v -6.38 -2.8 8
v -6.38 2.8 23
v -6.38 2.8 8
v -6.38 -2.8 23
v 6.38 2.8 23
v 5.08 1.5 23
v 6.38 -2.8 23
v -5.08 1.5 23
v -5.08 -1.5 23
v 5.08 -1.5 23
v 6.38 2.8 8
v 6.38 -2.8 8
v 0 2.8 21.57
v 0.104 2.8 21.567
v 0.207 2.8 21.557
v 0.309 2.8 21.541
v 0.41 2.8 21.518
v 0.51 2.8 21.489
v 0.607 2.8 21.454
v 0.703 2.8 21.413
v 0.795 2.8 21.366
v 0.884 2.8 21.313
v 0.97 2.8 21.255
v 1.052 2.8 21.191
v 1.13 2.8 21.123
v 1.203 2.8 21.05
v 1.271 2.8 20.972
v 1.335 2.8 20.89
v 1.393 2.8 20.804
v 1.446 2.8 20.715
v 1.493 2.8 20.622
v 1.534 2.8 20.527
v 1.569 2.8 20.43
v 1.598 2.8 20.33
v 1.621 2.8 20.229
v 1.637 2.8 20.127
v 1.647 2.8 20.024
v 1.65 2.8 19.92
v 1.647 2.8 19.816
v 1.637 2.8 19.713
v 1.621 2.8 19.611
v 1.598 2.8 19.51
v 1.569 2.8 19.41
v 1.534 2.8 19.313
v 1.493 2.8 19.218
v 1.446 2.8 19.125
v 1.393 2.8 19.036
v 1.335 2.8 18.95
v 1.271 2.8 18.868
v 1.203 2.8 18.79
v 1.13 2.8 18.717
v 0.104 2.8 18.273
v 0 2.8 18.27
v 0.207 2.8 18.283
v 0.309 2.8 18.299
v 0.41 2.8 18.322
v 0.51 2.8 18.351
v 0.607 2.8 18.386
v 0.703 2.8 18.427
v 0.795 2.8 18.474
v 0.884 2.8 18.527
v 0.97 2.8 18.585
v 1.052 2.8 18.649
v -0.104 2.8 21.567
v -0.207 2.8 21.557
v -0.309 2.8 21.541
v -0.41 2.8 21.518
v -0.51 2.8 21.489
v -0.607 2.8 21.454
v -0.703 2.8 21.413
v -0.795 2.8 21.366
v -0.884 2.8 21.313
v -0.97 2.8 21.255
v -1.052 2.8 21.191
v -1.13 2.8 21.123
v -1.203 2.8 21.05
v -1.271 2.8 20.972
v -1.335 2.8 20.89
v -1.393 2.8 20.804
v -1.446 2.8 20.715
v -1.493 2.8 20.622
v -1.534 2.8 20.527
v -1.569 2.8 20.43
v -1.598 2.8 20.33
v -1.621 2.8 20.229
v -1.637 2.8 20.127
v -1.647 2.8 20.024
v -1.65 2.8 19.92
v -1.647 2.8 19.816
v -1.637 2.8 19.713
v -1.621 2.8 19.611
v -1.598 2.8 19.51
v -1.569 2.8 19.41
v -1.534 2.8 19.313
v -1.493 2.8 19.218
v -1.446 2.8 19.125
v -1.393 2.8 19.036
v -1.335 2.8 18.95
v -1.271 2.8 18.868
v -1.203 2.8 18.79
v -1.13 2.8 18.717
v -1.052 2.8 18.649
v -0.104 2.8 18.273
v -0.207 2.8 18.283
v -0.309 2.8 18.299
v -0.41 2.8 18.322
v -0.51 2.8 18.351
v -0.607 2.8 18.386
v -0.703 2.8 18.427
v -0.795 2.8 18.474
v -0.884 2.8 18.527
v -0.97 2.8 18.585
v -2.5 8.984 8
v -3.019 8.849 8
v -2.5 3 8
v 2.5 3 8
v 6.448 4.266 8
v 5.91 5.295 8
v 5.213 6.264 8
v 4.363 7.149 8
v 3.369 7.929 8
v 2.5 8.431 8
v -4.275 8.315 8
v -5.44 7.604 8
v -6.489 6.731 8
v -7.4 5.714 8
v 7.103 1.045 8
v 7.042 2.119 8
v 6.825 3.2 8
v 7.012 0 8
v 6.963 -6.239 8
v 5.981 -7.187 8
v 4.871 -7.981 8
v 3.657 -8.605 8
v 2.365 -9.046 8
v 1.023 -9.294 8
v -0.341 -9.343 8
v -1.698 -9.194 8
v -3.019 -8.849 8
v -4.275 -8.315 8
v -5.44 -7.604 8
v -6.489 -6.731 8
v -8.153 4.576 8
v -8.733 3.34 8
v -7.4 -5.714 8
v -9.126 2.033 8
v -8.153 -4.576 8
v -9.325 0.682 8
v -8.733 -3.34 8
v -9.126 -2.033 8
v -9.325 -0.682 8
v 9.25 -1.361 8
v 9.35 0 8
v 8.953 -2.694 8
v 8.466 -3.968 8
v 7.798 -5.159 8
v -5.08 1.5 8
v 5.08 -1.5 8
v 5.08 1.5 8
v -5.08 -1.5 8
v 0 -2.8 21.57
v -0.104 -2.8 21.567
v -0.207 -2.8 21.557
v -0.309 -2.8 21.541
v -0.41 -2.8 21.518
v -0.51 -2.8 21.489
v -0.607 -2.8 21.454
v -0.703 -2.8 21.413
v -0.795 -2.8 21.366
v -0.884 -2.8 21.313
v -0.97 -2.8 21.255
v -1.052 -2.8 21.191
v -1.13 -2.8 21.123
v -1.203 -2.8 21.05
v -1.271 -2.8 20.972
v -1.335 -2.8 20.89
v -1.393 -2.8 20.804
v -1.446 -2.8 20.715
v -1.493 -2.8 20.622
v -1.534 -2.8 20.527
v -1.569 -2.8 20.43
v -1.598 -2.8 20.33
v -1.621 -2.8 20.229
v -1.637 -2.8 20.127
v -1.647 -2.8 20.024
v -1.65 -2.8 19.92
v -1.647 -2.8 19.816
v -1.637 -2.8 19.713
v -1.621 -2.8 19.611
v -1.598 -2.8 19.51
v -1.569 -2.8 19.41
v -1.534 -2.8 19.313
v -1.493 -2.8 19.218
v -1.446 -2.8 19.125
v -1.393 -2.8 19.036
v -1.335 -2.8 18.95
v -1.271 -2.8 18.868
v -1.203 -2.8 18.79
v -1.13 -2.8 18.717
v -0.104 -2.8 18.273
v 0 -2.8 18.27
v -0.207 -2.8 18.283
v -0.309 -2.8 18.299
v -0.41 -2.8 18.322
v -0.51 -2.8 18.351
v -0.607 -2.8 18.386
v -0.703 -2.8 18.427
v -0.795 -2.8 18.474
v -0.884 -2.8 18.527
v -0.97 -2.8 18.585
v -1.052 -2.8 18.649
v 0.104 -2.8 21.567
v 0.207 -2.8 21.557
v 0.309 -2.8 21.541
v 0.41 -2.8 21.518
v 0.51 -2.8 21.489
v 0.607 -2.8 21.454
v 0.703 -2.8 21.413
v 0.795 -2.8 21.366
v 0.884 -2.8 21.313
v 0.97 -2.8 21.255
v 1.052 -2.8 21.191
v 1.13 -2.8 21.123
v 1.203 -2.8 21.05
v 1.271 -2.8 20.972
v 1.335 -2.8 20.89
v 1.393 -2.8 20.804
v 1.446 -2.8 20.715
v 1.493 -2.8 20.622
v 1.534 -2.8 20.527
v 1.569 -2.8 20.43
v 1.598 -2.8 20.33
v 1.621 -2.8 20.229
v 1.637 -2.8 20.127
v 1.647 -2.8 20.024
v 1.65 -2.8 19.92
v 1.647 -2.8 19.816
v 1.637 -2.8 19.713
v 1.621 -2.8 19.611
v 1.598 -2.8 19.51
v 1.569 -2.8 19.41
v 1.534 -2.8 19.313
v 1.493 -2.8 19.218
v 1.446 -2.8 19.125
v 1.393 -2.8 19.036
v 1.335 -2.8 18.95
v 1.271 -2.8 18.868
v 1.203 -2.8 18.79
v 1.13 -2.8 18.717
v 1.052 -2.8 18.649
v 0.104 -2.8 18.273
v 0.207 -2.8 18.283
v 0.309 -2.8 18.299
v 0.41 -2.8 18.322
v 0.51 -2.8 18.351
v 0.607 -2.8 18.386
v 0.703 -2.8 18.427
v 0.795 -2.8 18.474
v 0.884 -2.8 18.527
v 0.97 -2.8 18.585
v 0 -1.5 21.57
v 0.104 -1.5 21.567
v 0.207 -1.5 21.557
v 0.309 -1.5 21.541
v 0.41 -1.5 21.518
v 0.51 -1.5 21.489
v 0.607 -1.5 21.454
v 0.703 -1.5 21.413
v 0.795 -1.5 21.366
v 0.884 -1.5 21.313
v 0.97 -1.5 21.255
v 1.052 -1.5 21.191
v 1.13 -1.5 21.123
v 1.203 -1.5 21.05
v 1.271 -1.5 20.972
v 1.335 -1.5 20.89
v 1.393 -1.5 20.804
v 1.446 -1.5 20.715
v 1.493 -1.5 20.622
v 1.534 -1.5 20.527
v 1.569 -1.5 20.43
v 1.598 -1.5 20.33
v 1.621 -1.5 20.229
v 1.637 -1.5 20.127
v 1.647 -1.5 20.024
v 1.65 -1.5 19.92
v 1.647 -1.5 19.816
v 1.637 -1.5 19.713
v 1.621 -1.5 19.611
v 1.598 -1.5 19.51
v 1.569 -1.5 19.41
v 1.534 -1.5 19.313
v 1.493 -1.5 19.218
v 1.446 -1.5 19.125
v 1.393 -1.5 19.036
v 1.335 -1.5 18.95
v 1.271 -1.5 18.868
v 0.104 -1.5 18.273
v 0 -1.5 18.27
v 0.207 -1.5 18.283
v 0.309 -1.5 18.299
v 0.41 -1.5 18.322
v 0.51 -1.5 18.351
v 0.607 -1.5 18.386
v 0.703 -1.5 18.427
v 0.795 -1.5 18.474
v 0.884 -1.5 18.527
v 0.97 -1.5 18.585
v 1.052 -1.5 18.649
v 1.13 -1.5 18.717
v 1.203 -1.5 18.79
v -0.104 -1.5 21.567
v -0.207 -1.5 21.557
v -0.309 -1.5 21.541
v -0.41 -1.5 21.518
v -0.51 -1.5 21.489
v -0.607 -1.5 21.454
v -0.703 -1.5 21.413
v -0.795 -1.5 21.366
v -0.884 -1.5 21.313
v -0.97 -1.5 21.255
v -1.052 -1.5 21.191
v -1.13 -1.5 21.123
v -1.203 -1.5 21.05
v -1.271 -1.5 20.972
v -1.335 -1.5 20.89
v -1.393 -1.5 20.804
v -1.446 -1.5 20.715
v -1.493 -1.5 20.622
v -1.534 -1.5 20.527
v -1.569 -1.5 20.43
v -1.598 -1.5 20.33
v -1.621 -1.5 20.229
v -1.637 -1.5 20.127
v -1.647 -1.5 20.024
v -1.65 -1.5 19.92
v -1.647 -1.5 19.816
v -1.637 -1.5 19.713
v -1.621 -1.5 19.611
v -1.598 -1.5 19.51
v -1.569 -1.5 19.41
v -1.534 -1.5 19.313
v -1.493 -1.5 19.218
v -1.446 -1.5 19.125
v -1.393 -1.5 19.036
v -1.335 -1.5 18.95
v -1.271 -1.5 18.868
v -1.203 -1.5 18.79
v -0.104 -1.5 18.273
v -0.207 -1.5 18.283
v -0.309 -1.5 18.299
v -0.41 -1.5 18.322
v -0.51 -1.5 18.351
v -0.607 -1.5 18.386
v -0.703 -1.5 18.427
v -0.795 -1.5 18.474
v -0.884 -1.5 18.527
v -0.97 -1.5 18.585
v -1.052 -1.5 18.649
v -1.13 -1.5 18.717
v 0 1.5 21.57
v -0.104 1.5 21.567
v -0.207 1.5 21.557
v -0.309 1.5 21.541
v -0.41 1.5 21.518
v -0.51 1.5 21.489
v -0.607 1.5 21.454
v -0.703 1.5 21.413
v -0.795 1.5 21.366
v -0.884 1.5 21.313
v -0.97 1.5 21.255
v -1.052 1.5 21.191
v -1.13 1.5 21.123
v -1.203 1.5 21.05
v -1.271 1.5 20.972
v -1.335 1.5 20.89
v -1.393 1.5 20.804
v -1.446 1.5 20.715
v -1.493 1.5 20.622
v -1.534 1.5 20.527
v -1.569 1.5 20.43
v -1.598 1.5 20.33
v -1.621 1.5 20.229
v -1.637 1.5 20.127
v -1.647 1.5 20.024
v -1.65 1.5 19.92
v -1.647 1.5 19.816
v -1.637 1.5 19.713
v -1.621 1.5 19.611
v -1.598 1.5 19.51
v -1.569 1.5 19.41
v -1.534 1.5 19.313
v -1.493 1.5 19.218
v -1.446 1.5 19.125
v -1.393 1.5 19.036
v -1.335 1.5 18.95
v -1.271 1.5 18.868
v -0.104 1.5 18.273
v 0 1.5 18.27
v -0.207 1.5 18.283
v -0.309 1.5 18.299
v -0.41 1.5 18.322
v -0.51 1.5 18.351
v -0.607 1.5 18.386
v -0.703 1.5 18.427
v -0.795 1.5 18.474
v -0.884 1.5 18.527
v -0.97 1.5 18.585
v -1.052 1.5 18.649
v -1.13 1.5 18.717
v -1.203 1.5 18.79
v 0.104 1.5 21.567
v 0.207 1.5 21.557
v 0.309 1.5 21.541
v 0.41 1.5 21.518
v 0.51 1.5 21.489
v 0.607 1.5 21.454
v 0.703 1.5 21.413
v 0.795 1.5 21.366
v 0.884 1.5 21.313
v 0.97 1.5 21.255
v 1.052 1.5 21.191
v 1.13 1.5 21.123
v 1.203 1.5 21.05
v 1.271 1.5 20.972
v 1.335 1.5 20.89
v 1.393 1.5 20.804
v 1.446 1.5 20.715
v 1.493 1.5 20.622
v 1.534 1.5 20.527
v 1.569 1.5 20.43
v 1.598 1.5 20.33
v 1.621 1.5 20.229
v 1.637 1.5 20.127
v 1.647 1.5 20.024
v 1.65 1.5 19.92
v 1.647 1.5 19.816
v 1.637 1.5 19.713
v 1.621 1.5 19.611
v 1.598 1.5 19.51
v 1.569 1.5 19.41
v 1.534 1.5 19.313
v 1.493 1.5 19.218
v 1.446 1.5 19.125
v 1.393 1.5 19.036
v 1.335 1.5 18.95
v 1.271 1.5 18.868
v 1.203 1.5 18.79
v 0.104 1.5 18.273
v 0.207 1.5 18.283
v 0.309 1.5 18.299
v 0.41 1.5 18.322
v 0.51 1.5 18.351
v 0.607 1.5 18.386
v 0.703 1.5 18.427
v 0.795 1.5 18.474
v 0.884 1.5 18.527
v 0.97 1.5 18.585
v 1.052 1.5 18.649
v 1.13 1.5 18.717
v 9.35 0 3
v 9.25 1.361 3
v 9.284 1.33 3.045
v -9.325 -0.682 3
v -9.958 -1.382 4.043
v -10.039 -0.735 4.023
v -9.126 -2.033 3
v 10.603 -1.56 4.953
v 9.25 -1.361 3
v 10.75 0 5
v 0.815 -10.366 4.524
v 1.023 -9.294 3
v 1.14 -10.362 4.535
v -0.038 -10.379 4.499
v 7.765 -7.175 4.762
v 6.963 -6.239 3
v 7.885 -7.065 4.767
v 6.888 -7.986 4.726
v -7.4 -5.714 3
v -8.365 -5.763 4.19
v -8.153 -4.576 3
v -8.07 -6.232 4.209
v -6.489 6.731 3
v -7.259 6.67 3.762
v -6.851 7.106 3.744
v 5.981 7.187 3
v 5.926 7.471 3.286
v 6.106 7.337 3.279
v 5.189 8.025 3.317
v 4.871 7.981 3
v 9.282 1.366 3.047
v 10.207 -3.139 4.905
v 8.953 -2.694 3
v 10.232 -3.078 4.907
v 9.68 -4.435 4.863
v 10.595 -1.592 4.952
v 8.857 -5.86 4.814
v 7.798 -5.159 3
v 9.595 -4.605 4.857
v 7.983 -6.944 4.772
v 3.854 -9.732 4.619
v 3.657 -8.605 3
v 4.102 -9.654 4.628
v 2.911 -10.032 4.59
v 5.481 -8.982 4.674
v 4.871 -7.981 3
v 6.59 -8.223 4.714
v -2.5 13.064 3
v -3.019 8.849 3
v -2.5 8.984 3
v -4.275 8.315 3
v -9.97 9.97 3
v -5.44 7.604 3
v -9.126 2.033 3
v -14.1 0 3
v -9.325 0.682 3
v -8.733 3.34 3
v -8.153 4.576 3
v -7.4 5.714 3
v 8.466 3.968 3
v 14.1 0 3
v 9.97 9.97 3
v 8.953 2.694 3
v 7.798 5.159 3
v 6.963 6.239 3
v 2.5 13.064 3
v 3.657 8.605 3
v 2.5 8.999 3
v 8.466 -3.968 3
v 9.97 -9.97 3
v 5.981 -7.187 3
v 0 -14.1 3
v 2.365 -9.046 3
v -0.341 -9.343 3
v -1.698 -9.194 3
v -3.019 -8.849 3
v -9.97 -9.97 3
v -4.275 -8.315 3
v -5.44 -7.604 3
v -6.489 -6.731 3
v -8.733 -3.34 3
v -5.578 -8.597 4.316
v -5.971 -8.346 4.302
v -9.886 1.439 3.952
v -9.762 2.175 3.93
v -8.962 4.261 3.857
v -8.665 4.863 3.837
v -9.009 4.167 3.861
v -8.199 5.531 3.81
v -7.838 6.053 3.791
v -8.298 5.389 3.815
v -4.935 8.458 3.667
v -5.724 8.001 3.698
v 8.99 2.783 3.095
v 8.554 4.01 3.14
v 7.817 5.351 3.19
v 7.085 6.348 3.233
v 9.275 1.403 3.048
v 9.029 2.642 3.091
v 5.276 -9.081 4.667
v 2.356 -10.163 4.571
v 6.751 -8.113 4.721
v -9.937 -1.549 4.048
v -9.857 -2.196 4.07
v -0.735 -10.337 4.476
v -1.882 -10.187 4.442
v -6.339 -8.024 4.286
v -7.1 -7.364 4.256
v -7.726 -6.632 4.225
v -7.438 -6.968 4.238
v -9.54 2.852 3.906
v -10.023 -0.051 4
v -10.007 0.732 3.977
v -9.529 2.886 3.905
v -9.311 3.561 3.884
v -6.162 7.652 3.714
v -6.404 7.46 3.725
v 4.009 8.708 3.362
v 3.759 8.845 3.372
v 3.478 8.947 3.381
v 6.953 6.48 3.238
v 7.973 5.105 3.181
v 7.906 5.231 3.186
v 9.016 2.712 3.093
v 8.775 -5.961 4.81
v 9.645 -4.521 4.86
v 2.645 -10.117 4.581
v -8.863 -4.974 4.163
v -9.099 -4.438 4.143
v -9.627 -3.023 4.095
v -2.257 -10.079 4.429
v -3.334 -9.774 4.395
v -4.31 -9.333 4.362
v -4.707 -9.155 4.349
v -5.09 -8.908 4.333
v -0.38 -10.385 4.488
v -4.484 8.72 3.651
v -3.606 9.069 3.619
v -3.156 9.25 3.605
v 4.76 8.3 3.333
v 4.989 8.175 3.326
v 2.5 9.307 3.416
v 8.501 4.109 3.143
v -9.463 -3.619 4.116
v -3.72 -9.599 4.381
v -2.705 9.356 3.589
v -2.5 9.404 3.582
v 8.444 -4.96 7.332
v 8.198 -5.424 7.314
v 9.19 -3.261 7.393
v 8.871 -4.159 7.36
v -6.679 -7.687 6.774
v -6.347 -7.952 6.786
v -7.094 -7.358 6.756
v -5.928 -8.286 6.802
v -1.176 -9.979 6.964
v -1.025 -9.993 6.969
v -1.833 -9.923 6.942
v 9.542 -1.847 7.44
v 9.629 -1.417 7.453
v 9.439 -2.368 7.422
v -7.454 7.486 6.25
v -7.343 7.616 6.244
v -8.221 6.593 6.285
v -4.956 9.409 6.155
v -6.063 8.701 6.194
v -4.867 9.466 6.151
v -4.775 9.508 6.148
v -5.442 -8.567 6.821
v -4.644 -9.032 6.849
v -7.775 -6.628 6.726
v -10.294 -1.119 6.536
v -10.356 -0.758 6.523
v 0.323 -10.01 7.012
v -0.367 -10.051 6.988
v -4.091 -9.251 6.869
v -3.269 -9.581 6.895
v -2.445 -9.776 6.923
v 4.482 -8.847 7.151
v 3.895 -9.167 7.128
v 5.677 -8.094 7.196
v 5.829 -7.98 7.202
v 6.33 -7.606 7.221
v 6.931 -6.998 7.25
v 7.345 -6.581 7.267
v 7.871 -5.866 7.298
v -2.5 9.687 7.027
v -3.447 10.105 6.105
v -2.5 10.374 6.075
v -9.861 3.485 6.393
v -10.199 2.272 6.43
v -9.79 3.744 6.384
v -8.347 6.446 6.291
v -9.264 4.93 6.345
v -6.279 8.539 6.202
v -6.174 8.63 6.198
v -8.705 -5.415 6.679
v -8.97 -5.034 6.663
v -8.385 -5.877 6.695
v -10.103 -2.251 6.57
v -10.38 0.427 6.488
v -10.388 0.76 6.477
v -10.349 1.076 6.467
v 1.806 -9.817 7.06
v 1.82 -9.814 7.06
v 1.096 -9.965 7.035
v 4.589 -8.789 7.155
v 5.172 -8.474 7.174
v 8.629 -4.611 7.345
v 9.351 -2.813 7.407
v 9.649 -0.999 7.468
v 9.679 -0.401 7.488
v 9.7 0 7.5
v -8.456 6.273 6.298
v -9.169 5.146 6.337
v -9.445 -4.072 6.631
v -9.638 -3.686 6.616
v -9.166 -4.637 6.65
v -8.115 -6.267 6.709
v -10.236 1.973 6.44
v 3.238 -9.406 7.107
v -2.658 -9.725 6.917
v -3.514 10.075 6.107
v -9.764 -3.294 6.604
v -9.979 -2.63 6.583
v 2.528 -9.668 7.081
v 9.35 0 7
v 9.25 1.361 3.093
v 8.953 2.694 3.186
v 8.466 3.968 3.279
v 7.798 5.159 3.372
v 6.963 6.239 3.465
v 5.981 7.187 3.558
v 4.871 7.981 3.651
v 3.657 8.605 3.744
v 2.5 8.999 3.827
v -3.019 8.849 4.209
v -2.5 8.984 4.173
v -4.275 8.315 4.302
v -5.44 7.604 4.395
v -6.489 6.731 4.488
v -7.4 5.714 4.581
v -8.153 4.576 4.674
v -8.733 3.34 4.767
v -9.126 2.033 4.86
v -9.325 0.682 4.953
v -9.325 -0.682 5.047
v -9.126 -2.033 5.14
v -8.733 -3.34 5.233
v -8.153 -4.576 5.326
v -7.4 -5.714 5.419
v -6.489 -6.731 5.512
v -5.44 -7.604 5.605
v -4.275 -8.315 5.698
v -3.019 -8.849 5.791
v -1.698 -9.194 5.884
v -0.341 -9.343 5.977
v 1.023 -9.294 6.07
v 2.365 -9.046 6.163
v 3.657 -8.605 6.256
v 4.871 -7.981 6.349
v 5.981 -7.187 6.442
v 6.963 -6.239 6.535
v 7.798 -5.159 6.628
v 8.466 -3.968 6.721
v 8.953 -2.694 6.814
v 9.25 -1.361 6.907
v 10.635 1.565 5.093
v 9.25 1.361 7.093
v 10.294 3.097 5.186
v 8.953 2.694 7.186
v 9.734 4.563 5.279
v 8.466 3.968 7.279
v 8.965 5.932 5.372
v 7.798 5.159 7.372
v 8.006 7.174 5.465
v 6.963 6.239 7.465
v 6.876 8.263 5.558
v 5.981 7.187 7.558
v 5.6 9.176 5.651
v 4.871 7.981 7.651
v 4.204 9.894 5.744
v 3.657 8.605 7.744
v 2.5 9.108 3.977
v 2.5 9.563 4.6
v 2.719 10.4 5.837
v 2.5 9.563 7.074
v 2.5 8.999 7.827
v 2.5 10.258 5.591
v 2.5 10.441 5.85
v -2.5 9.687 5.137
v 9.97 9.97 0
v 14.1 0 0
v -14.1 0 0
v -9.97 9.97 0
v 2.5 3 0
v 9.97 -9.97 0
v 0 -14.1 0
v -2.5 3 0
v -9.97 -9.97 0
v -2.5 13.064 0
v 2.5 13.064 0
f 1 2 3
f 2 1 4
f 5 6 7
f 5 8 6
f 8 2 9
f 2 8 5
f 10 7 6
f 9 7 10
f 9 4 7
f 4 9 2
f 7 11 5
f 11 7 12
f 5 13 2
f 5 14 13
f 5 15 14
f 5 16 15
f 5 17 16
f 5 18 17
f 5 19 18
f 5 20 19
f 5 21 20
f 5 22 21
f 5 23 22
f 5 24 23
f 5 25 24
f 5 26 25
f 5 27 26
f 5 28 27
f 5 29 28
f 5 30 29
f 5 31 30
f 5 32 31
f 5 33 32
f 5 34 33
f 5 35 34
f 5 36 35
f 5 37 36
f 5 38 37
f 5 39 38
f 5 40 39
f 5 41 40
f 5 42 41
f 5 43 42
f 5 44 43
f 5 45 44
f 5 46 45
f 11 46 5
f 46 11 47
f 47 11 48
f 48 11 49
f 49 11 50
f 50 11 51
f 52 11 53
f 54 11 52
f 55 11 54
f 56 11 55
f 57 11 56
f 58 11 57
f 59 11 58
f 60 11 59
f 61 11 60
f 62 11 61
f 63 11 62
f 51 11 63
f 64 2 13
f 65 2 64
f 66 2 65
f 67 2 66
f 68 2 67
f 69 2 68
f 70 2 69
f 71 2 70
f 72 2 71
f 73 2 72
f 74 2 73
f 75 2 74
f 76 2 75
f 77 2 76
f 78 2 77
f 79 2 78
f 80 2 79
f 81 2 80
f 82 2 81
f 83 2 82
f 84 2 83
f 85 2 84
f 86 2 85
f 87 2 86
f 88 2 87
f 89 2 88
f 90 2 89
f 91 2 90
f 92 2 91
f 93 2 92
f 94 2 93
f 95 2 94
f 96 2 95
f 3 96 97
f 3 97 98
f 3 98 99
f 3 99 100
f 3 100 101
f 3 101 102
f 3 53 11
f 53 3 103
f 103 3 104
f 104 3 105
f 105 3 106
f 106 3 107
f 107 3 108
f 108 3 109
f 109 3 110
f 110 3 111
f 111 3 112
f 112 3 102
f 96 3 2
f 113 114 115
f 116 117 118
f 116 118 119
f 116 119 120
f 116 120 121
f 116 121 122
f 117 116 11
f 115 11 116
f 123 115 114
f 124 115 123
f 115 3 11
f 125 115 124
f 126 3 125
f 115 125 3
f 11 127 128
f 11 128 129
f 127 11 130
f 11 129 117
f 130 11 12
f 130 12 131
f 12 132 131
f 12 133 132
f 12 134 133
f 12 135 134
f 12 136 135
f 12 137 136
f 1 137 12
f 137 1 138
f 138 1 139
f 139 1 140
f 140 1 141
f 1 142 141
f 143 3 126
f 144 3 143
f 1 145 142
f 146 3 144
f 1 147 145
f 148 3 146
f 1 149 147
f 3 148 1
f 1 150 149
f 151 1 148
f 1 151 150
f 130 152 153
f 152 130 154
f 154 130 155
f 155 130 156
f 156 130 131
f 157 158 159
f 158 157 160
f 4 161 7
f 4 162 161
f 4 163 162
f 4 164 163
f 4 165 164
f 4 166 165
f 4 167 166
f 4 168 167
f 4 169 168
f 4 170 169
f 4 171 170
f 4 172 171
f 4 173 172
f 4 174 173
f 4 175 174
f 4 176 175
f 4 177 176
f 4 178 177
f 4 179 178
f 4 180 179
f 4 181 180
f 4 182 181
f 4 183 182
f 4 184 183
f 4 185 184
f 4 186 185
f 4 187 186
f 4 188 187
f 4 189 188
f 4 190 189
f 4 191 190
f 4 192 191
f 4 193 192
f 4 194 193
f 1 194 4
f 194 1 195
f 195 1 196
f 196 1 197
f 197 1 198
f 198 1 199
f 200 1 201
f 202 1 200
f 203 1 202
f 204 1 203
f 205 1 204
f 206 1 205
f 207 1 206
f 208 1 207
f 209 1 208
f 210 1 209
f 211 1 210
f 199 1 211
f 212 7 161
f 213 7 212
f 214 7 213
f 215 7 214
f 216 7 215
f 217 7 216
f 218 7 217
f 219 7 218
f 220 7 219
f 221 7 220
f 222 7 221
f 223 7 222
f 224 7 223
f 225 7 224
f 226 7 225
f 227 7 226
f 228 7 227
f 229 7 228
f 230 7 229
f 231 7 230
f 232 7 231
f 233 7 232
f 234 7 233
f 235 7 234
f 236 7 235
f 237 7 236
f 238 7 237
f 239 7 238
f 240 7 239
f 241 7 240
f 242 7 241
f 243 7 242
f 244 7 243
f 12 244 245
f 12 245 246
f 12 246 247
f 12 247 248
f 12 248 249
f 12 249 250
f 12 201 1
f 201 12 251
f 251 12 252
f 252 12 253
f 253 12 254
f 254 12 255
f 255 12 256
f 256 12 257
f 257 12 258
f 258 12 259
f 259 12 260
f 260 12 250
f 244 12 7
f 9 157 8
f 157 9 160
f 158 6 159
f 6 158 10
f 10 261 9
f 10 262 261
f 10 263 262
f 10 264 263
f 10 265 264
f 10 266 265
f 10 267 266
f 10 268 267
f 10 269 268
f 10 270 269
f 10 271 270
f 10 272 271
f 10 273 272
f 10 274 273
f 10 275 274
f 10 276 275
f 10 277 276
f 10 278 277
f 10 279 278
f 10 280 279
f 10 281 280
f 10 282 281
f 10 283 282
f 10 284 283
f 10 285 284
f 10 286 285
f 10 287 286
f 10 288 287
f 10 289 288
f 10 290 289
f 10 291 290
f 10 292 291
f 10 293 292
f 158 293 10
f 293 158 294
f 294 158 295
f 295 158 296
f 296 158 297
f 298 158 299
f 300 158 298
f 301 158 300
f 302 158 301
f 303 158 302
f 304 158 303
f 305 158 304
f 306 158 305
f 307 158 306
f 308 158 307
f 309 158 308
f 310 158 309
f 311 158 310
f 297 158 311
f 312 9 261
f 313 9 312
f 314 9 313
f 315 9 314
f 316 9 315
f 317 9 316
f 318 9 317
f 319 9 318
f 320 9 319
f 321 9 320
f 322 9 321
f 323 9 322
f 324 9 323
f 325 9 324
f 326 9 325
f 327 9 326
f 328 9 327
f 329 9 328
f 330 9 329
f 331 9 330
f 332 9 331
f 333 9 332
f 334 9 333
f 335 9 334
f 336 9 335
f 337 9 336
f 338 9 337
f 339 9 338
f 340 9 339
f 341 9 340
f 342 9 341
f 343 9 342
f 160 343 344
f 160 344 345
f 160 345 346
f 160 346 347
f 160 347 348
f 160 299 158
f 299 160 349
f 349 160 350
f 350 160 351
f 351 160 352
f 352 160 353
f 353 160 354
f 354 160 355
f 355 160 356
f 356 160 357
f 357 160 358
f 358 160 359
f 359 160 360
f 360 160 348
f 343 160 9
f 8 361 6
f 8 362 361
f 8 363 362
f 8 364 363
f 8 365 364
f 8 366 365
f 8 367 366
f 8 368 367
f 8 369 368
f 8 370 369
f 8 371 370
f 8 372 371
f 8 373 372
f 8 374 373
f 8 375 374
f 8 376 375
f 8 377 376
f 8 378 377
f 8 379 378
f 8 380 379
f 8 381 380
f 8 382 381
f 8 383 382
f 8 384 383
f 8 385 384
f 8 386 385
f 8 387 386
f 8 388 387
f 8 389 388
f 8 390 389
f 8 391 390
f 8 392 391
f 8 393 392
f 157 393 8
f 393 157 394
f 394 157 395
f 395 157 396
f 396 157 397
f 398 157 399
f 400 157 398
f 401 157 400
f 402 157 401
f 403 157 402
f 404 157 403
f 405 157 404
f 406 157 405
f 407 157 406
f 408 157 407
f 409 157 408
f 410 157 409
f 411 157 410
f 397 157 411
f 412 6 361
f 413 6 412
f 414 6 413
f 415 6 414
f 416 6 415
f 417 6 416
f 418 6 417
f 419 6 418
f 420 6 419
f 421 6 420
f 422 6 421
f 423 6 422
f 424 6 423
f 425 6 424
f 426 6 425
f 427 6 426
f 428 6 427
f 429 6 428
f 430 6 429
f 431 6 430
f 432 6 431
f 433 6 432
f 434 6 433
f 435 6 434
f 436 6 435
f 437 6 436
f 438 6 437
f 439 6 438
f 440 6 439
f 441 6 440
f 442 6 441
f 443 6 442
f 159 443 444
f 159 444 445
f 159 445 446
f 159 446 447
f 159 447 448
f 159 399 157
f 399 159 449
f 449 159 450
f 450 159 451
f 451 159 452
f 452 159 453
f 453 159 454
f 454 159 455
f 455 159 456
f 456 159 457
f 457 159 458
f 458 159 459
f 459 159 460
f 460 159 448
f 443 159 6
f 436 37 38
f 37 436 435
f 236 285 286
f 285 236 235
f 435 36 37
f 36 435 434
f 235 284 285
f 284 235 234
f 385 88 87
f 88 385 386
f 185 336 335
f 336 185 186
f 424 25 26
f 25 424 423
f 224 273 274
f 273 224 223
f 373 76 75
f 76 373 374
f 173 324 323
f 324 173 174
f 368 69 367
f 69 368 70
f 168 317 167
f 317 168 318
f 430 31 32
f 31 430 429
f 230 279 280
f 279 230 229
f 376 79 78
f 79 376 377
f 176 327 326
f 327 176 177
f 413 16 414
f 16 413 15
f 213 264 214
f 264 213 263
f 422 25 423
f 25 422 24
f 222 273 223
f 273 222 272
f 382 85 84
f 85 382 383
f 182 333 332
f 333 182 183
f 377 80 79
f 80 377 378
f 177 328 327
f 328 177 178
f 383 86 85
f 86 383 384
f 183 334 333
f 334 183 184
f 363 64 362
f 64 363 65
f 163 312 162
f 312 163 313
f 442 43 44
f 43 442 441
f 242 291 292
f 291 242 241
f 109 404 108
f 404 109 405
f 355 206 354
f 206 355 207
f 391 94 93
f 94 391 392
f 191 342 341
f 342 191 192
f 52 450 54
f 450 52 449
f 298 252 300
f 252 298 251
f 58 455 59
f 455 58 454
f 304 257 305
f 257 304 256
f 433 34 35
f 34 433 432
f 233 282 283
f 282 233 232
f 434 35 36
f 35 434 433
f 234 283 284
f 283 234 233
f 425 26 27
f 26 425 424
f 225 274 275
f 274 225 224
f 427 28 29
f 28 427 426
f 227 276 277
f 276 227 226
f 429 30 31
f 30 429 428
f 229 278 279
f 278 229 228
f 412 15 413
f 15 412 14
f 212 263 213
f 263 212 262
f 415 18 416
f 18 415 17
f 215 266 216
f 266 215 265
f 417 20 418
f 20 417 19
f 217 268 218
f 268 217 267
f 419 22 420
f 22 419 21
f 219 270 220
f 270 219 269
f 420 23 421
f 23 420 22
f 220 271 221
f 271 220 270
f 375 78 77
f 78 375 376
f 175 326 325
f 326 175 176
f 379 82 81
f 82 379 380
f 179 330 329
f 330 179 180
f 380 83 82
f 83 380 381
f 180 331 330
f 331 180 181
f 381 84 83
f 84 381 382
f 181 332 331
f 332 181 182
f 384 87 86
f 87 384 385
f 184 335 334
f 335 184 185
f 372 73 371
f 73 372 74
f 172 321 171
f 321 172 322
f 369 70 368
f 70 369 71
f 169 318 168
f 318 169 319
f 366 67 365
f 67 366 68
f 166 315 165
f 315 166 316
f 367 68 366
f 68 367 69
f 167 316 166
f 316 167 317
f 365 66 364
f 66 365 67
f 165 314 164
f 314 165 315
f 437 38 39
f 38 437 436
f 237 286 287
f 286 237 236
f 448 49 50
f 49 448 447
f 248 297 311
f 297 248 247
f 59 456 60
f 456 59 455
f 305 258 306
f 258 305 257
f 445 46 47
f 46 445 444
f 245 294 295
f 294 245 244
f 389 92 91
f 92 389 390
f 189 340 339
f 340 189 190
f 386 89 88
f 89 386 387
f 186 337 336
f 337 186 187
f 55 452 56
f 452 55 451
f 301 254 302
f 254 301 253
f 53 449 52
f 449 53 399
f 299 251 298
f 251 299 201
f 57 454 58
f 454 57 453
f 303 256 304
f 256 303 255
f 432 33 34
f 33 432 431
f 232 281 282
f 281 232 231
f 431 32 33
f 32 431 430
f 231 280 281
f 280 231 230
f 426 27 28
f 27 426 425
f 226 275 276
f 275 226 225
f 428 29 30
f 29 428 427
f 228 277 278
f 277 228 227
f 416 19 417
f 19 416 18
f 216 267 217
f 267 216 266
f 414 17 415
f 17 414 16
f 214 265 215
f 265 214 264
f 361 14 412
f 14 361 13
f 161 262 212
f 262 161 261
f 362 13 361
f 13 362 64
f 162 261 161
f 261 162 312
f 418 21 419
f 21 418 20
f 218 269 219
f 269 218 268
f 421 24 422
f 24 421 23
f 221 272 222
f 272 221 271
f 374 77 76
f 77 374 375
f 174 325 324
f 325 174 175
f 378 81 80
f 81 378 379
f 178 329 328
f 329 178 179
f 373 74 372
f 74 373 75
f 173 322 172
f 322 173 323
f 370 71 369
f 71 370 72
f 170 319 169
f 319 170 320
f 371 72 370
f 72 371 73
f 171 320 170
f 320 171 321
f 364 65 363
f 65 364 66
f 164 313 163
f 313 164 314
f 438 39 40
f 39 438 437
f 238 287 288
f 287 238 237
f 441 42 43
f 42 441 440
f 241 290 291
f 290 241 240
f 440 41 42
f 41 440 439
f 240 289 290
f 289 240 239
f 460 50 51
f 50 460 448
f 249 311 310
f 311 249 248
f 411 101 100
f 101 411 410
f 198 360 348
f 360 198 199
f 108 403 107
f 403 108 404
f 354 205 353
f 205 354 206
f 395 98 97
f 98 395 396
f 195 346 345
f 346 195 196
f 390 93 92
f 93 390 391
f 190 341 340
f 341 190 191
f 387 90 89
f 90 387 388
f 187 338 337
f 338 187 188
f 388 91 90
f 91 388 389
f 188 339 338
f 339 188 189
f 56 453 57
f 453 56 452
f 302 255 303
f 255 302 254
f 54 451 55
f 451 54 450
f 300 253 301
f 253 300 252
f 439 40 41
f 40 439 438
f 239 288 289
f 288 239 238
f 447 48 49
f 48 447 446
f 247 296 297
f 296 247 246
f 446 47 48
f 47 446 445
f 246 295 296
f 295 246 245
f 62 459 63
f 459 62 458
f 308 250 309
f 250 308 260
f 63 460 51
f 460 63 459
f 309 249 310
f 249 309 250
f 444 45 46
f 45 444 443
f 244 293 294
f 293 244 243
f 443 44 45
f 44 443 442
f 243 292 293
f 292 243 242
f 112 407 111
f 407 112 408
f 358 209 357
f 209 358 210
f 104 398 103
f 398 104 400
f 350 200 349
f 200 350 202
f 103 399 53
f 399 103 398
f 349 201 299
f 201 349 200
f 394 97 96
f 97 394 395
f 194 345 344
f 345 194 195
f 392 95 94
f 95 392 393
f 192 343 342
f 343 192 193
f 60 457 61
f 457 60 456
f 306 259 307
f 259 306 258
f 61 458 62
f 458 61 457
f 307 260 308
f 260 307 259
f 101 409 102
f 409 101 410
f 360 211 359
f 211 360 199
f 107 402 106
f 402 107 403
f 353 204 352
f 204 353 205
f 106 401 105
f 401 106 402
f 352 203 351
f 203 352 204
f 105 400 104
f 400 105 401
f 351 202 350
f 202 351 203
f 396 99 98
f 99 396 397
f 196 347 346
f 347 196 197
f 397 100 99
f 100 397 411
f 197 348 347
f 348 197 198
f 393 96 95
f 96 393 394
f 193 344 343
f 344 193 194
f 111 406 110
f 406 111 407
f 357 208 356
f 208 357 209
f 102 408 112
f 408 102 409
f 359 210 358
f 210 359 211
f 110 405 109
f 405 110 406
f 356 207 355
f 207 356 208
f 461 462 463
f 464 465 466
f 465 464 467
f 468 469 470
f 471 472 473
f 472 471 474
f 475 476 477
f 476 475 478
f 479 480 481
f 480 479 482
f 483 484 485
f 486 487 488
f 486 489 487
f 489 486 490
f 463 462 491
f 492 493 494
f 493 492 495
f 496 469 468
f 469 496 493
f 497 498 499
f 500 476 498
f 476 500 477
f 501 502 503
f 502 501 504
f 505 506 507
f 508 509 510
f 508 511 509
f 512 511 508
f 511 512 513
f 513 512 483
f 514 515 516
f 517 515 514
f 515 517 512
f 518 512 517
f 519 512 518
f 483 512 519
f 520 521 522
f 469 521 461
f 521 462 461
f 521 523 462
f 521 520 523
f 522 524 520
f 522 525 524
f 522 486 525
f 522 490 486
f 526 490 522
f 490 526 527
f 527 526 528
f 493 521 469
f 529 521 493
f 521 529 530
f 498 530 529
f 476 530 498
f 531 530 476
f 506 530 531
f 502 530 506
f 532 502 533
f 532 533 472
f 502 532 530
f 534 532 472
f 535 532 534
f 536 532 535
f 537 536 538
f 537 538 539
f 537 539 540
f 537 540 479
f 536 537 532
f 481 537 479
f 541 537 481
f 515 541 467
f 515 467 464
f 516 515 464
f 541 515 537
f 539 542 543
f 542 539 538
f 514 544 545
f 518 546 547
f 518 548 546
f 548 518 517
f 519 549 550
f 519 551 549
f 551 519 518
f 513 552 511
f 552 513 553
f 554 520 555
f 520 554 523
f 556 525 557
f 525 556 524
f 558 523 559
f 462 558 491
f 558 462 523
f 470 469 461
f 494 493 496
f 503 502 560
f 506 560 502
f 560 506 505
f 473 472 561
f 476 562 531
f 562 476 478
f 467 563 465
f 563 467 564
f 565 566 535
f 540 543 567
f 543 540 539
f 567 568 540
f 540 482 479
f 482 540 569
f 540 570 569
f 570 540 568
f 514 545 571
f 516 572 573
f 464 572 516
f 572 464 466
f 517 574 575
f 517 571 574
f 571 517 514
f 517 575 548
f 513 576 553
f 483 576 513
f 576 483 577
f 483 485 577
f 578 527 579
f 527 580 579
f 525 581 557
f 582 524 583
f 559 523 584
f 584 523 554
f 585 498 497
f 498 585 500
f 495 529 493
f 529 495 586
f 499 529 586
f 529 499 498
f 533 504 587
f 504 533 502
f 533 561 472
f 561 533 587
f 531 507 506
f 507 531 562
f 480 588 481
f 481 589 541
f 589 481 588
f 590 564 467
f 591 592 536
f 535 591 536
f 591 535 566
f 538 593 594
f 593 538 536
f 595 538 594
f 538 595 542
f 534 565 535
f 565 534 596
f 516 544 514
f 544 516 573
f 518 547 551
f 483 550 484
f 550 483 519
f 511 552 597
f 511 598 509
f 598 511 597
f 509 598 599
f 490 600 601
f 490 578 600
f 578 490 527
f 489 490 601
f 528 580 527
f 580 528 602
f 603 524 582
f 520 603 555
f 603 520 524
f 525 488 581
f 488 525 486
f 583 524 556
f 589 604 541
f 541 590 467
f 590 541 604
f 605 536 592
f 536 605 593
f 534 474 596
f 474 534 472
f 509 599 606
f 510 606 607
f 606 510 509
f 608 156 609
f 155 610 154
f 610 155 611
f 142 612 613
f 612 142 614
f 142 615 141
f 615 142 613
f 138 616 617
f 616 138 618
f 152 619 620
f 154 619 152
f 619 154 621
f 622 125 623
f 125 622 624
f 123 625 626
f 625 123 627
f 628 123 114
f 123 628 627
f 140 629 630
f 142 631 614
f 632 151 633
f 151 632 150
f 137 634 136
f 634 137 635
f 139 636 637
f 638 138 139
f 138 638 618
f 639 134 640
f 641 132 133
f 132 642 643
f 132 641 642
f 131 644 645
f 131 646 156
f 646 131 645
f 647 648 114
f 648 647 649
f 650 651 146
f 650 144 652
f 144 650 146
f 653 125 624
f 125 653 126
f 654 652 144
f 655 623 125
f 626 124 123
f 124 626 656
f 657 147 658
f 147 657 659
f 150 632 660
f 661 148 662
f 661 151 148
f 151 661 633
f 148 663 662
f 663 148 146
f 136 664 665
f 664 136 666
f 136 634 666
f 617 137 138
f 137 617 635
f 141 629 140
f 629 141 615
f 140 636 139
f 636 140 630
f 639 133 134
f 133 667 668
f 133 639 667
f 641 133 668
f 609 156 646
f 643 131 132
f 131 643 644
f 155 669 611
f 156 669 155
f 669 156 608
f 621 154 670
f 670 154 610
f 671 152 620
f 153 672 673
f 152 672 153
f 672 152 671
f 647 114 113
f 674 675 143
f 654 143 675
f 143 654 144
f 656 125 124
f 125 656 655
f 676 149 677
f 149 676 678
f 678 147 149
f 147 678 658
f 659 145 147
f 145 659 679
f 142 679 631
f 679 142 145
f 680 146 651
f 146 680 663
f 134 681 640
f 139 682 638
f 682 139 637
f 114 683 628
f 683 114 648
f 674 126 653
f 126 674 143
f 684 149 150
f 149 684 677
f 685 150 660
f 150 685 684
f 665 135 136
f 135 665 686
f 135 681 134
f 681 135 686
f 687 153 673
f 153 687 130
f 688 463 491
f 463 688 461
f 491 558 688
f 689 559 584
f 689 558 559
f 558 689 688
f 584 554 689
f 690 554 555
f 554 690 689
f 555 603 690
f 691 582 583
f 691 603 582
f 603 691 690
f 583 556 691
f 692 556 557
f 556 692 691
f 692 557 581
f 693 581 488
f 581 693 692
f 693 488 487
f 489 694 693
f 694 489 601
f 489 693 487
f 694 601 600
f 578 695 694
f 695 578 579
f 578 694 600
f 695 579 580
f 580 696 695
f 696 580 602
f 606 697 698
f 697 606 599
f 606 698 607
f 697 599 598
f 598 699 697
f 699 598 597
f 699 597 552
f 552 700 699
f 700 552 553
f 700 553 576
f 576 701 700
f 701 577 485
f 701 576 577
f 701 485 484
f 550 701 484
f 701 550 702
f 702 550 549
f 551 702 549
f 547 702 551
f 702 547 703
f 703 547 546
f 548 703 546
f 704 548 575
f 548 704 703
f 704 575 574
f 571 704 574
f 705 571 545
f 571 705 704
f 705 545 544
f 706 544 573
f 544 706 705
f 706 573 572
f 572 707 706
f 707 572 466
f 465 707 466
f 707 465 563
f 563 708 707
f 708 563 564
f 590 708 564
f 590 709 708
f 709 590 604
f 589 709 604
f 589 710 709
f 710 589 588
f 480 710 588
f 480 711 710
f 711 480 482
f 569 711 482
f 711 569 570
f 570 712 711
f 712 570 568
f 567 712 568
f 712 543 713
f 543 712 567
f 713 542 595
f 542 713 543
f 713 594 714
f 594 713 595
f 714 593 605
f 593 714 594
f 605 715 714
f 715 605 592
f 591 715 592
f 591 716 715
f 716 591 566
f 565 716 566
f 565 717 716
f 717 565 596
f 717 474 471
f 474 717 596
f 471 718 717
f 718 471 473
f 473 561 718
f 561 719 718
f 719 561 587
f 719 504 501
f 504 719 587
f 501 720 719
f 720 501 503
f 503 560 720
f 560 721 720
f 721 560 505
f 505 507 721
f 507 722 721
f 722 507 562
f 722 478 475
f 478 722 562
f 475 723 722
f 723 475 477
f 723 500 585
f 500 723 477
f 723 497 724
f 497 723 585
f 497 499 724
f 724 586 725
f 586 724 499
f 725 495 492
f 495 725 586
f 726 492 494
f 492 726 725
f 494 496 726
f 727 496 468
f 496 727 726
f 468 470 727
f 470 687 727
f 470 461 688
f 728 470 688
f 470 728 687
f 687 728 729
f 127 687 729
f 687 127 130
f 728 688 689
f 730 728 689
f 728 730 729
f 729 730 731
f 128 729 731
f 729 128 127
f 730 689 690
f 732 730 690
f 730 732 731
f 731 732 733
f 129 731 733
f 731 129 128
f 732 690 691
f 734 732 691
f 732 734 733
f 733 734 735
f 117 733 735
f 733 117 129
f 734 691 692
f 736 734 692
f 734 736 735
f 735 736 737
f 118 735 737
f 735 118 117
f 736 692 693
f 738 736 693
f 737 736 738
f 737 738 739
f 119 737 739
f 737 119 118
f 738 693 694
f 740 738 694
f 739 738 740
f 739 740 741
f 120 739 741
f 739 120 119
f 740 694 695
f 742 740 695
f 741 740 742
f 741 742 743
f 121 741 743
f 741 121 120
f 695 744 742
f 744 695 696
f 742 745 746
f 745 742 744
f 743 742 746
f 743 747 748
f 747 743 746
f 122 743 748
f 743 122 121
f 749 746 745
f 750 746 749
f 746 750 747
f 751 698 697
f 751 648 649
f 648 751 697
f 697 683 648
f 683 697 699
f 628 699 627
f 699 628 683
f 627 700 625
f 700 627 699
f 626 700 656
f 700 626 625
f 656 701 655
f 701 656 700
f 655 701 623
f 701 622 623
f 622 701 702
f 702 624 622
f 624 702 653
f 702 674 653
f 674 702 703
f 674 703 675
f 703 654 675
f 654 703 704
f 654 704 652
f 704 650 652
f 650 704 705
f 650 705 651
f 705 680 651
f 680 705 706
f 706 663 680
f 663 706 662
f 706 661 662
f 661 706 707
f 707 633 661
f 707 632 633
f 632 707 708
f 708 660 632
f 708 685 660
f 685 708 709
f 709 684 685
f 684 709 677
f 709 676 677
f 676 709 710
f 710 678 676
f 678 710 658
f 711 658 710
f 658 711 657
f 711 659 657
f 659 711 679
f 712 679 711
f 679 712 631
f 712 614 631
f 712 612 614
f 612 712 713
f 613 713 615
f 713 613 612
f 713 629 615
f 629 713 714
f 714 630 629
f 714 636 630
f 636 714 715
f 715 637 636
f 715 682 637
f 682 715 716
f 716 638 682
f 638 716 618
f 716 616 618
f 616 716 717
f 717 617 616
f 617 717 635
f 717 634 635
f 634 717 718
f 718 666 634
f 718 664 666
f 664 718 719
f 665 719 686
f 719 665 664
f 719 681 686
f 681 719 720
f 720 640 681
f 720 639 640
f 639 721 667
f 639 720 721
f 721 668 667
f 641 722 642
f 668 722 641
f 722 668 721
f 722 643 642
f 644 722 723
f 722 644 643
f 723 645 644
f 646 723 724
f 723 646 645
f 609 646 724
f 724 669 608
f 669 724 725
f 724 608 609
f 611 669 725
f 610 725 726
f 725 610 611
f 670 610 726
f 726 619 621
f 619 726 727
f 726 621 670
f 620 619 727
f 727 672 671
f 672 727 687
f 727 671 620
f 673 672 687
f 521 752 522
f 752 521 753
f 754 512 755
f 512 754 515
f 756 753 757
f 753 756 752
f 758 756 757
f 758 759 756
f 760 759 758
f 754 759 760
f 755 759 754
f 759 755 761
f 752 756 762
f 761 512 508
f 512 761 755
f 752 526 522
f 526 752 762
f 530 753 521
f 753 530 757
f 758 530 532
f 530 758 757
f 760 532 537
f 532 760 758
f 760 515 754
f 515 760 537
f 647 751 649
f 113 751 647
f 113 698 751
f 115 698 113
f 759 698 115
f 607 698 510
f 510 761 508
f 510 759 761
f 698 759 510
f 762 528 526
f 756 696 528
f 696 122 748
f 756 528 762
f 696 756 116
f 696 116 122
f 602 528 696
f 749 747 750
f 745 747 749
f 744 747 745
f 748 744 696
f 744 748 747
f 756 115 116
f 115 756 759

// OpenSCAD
// file: ../SRC/polyScrewThread_r1.scad
/*
 *    polyScrewThread_r1.scad    by aubenc @ Thingiverse
 *
 * This script contains the library modules that can be used to generate
 * threaded rods, screws and nuts.
 *
 * http://www.thingiverse.com/thing:8796
 *
 * CC Public Domain
 */


/* Example:
 * Just a 100mm long threaded rod.
 *
 * screw_thread(15,   // Outer diameter of the thread
 *               4,   // Step, traveling length per turn, also, tooth height, whatever...
 *              55,   // Degrees for the shape of the tooth 
 *                       (XY plane = 0, Z = 90, btw, 0 and 90 will/should not work...)
 *             100,   // Length (Z) of the tread
 *            PI/2,   // Resolution, one face each "PI/2" mm of the perimeter, 
 *               0);  // Countersink style:
 *                         -2 - Not even flat ends
 *                         -1 - Bottom (countersink'd and top flat)
 *                          0 - None (top and bottom flat)
 *                          1 - Top (bottom flat)
 *                          2 - Both (countersink'd)
 */
module screw_thread(od,st,lf0,lt,rs,cs)
{
    or=od/2;
    ir=or-st/2*cos(lf0)/sin(lf0);
    pf=2*PI*or;
    sn=floor(pf/rs);
    lfxy=360/sn;
    ttn=round(lt/st+1);
    zt=st/sn;

    intersection()
    {
        if (cs >= -1)
        {
           thread_shape(cs,lt,or,ir,sn,st);
        }

        full_thread(ttn,st,sn,zt,lfxy,or,ir);
    }
}

/* Example.
 * A nut for the thread rod example.
 *
 * hexa_nut(24,  // Distance between flats
 *           8,  // Height 
 *           4,  // Step height (the half will be used to countersink the ends)
 *          55,  // Degrees (same as used for the screw_thread example)
 *          15,  // Outer diameter of the thread to match
 *         0.5)  // Resolution, you may want to set this to small values
 *                  (quite high res) to minimize overhang issues
 *
 */
module hex_nut(df,hg,sth,clf,cod,crs)
{

    difference()
    {
        hex_head(hg,df);

        hex_countersink_ends(sth/2,cod,clf,crs,hg);

        screw_thread(cod,sth,clf,hg,crs,-2);
    }
}


module hex_screw(od,st,lf0,lt,rs,cs,df,hg,ntl,ntd)
{
    ntr=od/2-(st/2)*cos(lf0)/sin(lf0);

    union()
    {
        hex_head(hg,df);

        translate([0,0,hg])
        if ( ntl == 0 )
        {
            cylinder(h=0.01, r=ntr, center=true);
        }
        else
        {
            if ( ntd == -1 )
            {
                cylinder(h=ntl+0.01, r=ntr, $fn=floor(od*PI/rs), center=false);
            }
            else if ( ntd == 0 )
            {
                union()
                {
                    cylinder(h=ntl-st/2,
                             r=od/2, $fn=floor(od*PI/rs), center=false);

                    translate([0,0,ntl-st/2])
                    cylinder(h=st/2,
                             r1=od/2, r2=ntr, 
                             $fn=floor(od*PI/rs), center=false);
                }
            }
            else
            {
                cylinder(h=ntl, r=ntd/2, $fn=ntd*PI/rs, center=false);
            }
        }

        translate([0,0,ntl+hg]) screw_thread(od,st,lf0,lt,rs,cs);
    }
}

module hex_screw_0(od,st,lf0,lt,rs,cs,df,hg,ntl,ntd)
{
    ntr=od/2-(st/2)*cos(lf0)/sin(lf0);

    union()
    {
        hex_head_0(hg,df);

        translate([0,0,hg])
        if ( ntl == 0 )
        {
            cylinder(h=0.01, r=ntr, center=true);
        }
        else
        {
            if ( ntd == -1 )
            {
                cylinder(h=ntl+0.01, r=ntr, $fn=floor(od*PI/rs), center=false);
            }
            else if ( ntd == 0 )
            {
                union()
                {
                    cylinder(h=ntl-st/2,
                             r=od/2, $fn=floor(od*PI/rs), center=false);

                    translate([0,0,ntl-st/2])
                    cylinder(h=st/2,
                             r1=od/2, r2=ntr, 
                             $fn=floor(od*PI/rs), center=false);
                }
            }
            else
            {
                cylinder(h=ntl, r=ntd/2, $fn=ntd*PI/rs, center=false);
            }
        }

        translate([0,0,ntl+hg]) screw_thread(od,st,lf0,lt,rs,cs);
    }
}

module thread_shape(cs,lt,or,ir,sn,st)
{
    if ( cs == 0 )
    {
        cylinder(h=lt, r=or, $fn=sn, center=false);
    }
    else
    {
        union()
        {
            translate([0,0,st/2])
              cylinder(h=lt-st+0.005, r=or, $fn=sn, center=false);

            if ( cs == -1 || cs == 2 )
            {
                cylinder(h=st/2, r1=ir, r2=or, $fn=sn, center=false);
            }
            else
            {
                cylinder(h=st/2, r=or, $fn=sn, center=false);
            }

            translate([0,0,lt-st/2])
            if ( cs == 1 || cs == 2 )
            {
                  cylinder(h=st/2, r1=or, r2=ir, $fn=sn, center=false);
            }
            else
            {
                cylinder(h=st/2, r=or, $fn=sn, center=false);
            }
        }
    }
}

module full_thread(ttn,st,sn,zt,lfxy,or,ir)
{
  if(ir >= 0.2)
  {
    for(i=[0:ttn-1])
    {
        for(j=[0:sn-1])
			assign( pt = [	[0,                  0,                  i*st-st            ],
                        [ir*cos(j*lfxy),     ir*sin(j*lfxy),     i*st+j*zt-st       ],
                        [ir*cos((j+1)*lfxy), ir*sin((j+1)*lfxy), i*st+(j+1)*zt-st   ],
								[0,0,i*st],
                        [or*cos(j*lfxy),     or*sin(j*lfxy),     i*st+j*zt-st/2     ],
                        [or*cos((j+1)*lfxy), or*sin((j+1)*lfxy), i*st+(j+1)*zt-st/2 ],
                        [ir*cos(j*lfxy),     ir*sin(j*lfxy),     i*st+j*zt          ],
                        [ir*cos((j+1)*lfxy), ir*sin((j+1)*lfxy), i*st+(j+1)*zt      ],
                        [0,                  0,                  i*st+st            ]	])
        {
            polyhedron(points=pt,
              		  triangles=[	[1,0,3],[1,3,6],[6,3,8],[1,6,4],
											[0,1,2],[1,4,2],[2,4,5],[5,4,6],[5,6,7],[7,6,8],
											[7,8,3],[0,2,3],[3,2,7],[7,2,5]	]);
        }
    }
  }
  else
  {
    echo("Step Degrees too agresive, the thread will not be made!!");
    echo("Try to increase de value for the degrees and/or...");
    echo(" decrease the pitch value and/or...");
    echo(" increase the outer diameter value.");
  }
}

module hex_head(hg,df)
{
	rd0=df/2/sin(60);
	x0=0;	x1=df/2;	x2=x1+hg/2;
	y0=0;	y1=hg/2;	y2=hg;

	intersection()
	{
	   cylinder(h=hg, r=rd0, $fn=6, center=false);

		rotate_extrude(convexity=10, $fn=6*round(df*PI/6/0.5))
		polygon([ [x0,y0],[x1,y0],[x2,y1],[x1,y2],[x0,y2] ]);
	}
}

module hex_head_0(hg,df)
{
    cylinder(h=hg, r=df/2/sin(60), $fn=6, center=false);
}

module hex_countersink_ends(chg,cod,clf,crs,hg)
{
    translate([0,0,-0.1])
    cylinder(h=chg+0.01, 
             r1=cod/2, 
             r2=cod/2-(chg+0.1)*cos(clf)/sin(clf),
             $fn=floor(cod*PI/crs), center=false);

    translate([0,0,hg-chg+0.1])
    cylinder(h=chg+0.01, 
             r1=cod/2-(chg+0.1)*cos(clf)/sin(clf),
             r2=cod/2, 
             $fn=floor(cod*PI/crs), center=false);
}
// file: ../SRC/SHTBOX01A_D02.scad
$fn=40; // model faces resolution.
include <../configuration.scad>
include <polyScrewThread_r1.scad>


module SHTBOX01A_D02()
    {
    translate([0,0,(D05_vyska_drzaku_senzoru)/2+D05_vyska_podstavce])
        difference()
            {
            cube([10.16+2*S01_sila_materialu,3+2*S01_sila_materialu,D05_vyska_drzaku_senzoru],true);

            cube([10.16,3,D05_vyska_drzaku_senzoru+0.01],true);
            
            translate([0,5,D05_vyska_drzaku_senzoru/2-3.08])
                rotate ([90,0,0])
                    cylinder (h = 30, r=(3.3/2), $fn=100);
            
            }
            
   difference()
        {
   
   union()
            
         //podstavec se zavitem   
         {   
        cylinder (h = D05_vyska_podstavce-D05_vyska_zavitu, r=D05_prumer_zavitu/2+2*S01_sila_materialu, $fn=8);
          
       translate([0,0,D05_vyska_podstavce-D05_vyska_zavitu])    
             
         screw_thread((D05_prumer_zavitu-2*tolerance_zavitu),4,55,D05_vyska_zavitu,PI/2,2);    
          }
        
        translate([0,(D05_prumer_zavitu+4*S01_sila_materialu)/4+3,D05_vyska_podstavce/2])  
            cube([D05_sirka_otvoru_na_kabel,(D05_prumer_zavitu+4*S01_sila_materialu)/2,D05_vyska_podstavce+0.11],true); 
         
               
            
       }
    }

SHTBOX01A_D02();

    
// file: ../configuration.scad
$fn=40; // model faces resolution.




S01_sila_materialu=1.3; //sila výztuhy

D05_vyska_drzaku_senzoru=15;
D05_prumer_zavitu=23;
D05_vyska_podstavce=8;
D05_vyska_zavitu=5;
D05_sirka_otvoru_na_kabel=5;

D05_vyska_senzoru= 42; //42


D05_sirka_zuzene_casti=10.8; //vnitřní
D05_vyska_zuzene_casti=16;
D05_vyska_kuzelu=10;


D05_vzdalenost_otvoru_od_hrany=2;
D05_prumer_otvoru=2;
D05_pocet_otvoru=8;













tolerance_zavitu=0.75; //tolerance s poloměru
// main file
$fn=100; // model faces resolution.
include <../configuration.scad>
use <../SRC/SHTBOX01A_D02.scad>

rotate([0, 0, 0])
            
 
SHTBOX01A_D02();

            
